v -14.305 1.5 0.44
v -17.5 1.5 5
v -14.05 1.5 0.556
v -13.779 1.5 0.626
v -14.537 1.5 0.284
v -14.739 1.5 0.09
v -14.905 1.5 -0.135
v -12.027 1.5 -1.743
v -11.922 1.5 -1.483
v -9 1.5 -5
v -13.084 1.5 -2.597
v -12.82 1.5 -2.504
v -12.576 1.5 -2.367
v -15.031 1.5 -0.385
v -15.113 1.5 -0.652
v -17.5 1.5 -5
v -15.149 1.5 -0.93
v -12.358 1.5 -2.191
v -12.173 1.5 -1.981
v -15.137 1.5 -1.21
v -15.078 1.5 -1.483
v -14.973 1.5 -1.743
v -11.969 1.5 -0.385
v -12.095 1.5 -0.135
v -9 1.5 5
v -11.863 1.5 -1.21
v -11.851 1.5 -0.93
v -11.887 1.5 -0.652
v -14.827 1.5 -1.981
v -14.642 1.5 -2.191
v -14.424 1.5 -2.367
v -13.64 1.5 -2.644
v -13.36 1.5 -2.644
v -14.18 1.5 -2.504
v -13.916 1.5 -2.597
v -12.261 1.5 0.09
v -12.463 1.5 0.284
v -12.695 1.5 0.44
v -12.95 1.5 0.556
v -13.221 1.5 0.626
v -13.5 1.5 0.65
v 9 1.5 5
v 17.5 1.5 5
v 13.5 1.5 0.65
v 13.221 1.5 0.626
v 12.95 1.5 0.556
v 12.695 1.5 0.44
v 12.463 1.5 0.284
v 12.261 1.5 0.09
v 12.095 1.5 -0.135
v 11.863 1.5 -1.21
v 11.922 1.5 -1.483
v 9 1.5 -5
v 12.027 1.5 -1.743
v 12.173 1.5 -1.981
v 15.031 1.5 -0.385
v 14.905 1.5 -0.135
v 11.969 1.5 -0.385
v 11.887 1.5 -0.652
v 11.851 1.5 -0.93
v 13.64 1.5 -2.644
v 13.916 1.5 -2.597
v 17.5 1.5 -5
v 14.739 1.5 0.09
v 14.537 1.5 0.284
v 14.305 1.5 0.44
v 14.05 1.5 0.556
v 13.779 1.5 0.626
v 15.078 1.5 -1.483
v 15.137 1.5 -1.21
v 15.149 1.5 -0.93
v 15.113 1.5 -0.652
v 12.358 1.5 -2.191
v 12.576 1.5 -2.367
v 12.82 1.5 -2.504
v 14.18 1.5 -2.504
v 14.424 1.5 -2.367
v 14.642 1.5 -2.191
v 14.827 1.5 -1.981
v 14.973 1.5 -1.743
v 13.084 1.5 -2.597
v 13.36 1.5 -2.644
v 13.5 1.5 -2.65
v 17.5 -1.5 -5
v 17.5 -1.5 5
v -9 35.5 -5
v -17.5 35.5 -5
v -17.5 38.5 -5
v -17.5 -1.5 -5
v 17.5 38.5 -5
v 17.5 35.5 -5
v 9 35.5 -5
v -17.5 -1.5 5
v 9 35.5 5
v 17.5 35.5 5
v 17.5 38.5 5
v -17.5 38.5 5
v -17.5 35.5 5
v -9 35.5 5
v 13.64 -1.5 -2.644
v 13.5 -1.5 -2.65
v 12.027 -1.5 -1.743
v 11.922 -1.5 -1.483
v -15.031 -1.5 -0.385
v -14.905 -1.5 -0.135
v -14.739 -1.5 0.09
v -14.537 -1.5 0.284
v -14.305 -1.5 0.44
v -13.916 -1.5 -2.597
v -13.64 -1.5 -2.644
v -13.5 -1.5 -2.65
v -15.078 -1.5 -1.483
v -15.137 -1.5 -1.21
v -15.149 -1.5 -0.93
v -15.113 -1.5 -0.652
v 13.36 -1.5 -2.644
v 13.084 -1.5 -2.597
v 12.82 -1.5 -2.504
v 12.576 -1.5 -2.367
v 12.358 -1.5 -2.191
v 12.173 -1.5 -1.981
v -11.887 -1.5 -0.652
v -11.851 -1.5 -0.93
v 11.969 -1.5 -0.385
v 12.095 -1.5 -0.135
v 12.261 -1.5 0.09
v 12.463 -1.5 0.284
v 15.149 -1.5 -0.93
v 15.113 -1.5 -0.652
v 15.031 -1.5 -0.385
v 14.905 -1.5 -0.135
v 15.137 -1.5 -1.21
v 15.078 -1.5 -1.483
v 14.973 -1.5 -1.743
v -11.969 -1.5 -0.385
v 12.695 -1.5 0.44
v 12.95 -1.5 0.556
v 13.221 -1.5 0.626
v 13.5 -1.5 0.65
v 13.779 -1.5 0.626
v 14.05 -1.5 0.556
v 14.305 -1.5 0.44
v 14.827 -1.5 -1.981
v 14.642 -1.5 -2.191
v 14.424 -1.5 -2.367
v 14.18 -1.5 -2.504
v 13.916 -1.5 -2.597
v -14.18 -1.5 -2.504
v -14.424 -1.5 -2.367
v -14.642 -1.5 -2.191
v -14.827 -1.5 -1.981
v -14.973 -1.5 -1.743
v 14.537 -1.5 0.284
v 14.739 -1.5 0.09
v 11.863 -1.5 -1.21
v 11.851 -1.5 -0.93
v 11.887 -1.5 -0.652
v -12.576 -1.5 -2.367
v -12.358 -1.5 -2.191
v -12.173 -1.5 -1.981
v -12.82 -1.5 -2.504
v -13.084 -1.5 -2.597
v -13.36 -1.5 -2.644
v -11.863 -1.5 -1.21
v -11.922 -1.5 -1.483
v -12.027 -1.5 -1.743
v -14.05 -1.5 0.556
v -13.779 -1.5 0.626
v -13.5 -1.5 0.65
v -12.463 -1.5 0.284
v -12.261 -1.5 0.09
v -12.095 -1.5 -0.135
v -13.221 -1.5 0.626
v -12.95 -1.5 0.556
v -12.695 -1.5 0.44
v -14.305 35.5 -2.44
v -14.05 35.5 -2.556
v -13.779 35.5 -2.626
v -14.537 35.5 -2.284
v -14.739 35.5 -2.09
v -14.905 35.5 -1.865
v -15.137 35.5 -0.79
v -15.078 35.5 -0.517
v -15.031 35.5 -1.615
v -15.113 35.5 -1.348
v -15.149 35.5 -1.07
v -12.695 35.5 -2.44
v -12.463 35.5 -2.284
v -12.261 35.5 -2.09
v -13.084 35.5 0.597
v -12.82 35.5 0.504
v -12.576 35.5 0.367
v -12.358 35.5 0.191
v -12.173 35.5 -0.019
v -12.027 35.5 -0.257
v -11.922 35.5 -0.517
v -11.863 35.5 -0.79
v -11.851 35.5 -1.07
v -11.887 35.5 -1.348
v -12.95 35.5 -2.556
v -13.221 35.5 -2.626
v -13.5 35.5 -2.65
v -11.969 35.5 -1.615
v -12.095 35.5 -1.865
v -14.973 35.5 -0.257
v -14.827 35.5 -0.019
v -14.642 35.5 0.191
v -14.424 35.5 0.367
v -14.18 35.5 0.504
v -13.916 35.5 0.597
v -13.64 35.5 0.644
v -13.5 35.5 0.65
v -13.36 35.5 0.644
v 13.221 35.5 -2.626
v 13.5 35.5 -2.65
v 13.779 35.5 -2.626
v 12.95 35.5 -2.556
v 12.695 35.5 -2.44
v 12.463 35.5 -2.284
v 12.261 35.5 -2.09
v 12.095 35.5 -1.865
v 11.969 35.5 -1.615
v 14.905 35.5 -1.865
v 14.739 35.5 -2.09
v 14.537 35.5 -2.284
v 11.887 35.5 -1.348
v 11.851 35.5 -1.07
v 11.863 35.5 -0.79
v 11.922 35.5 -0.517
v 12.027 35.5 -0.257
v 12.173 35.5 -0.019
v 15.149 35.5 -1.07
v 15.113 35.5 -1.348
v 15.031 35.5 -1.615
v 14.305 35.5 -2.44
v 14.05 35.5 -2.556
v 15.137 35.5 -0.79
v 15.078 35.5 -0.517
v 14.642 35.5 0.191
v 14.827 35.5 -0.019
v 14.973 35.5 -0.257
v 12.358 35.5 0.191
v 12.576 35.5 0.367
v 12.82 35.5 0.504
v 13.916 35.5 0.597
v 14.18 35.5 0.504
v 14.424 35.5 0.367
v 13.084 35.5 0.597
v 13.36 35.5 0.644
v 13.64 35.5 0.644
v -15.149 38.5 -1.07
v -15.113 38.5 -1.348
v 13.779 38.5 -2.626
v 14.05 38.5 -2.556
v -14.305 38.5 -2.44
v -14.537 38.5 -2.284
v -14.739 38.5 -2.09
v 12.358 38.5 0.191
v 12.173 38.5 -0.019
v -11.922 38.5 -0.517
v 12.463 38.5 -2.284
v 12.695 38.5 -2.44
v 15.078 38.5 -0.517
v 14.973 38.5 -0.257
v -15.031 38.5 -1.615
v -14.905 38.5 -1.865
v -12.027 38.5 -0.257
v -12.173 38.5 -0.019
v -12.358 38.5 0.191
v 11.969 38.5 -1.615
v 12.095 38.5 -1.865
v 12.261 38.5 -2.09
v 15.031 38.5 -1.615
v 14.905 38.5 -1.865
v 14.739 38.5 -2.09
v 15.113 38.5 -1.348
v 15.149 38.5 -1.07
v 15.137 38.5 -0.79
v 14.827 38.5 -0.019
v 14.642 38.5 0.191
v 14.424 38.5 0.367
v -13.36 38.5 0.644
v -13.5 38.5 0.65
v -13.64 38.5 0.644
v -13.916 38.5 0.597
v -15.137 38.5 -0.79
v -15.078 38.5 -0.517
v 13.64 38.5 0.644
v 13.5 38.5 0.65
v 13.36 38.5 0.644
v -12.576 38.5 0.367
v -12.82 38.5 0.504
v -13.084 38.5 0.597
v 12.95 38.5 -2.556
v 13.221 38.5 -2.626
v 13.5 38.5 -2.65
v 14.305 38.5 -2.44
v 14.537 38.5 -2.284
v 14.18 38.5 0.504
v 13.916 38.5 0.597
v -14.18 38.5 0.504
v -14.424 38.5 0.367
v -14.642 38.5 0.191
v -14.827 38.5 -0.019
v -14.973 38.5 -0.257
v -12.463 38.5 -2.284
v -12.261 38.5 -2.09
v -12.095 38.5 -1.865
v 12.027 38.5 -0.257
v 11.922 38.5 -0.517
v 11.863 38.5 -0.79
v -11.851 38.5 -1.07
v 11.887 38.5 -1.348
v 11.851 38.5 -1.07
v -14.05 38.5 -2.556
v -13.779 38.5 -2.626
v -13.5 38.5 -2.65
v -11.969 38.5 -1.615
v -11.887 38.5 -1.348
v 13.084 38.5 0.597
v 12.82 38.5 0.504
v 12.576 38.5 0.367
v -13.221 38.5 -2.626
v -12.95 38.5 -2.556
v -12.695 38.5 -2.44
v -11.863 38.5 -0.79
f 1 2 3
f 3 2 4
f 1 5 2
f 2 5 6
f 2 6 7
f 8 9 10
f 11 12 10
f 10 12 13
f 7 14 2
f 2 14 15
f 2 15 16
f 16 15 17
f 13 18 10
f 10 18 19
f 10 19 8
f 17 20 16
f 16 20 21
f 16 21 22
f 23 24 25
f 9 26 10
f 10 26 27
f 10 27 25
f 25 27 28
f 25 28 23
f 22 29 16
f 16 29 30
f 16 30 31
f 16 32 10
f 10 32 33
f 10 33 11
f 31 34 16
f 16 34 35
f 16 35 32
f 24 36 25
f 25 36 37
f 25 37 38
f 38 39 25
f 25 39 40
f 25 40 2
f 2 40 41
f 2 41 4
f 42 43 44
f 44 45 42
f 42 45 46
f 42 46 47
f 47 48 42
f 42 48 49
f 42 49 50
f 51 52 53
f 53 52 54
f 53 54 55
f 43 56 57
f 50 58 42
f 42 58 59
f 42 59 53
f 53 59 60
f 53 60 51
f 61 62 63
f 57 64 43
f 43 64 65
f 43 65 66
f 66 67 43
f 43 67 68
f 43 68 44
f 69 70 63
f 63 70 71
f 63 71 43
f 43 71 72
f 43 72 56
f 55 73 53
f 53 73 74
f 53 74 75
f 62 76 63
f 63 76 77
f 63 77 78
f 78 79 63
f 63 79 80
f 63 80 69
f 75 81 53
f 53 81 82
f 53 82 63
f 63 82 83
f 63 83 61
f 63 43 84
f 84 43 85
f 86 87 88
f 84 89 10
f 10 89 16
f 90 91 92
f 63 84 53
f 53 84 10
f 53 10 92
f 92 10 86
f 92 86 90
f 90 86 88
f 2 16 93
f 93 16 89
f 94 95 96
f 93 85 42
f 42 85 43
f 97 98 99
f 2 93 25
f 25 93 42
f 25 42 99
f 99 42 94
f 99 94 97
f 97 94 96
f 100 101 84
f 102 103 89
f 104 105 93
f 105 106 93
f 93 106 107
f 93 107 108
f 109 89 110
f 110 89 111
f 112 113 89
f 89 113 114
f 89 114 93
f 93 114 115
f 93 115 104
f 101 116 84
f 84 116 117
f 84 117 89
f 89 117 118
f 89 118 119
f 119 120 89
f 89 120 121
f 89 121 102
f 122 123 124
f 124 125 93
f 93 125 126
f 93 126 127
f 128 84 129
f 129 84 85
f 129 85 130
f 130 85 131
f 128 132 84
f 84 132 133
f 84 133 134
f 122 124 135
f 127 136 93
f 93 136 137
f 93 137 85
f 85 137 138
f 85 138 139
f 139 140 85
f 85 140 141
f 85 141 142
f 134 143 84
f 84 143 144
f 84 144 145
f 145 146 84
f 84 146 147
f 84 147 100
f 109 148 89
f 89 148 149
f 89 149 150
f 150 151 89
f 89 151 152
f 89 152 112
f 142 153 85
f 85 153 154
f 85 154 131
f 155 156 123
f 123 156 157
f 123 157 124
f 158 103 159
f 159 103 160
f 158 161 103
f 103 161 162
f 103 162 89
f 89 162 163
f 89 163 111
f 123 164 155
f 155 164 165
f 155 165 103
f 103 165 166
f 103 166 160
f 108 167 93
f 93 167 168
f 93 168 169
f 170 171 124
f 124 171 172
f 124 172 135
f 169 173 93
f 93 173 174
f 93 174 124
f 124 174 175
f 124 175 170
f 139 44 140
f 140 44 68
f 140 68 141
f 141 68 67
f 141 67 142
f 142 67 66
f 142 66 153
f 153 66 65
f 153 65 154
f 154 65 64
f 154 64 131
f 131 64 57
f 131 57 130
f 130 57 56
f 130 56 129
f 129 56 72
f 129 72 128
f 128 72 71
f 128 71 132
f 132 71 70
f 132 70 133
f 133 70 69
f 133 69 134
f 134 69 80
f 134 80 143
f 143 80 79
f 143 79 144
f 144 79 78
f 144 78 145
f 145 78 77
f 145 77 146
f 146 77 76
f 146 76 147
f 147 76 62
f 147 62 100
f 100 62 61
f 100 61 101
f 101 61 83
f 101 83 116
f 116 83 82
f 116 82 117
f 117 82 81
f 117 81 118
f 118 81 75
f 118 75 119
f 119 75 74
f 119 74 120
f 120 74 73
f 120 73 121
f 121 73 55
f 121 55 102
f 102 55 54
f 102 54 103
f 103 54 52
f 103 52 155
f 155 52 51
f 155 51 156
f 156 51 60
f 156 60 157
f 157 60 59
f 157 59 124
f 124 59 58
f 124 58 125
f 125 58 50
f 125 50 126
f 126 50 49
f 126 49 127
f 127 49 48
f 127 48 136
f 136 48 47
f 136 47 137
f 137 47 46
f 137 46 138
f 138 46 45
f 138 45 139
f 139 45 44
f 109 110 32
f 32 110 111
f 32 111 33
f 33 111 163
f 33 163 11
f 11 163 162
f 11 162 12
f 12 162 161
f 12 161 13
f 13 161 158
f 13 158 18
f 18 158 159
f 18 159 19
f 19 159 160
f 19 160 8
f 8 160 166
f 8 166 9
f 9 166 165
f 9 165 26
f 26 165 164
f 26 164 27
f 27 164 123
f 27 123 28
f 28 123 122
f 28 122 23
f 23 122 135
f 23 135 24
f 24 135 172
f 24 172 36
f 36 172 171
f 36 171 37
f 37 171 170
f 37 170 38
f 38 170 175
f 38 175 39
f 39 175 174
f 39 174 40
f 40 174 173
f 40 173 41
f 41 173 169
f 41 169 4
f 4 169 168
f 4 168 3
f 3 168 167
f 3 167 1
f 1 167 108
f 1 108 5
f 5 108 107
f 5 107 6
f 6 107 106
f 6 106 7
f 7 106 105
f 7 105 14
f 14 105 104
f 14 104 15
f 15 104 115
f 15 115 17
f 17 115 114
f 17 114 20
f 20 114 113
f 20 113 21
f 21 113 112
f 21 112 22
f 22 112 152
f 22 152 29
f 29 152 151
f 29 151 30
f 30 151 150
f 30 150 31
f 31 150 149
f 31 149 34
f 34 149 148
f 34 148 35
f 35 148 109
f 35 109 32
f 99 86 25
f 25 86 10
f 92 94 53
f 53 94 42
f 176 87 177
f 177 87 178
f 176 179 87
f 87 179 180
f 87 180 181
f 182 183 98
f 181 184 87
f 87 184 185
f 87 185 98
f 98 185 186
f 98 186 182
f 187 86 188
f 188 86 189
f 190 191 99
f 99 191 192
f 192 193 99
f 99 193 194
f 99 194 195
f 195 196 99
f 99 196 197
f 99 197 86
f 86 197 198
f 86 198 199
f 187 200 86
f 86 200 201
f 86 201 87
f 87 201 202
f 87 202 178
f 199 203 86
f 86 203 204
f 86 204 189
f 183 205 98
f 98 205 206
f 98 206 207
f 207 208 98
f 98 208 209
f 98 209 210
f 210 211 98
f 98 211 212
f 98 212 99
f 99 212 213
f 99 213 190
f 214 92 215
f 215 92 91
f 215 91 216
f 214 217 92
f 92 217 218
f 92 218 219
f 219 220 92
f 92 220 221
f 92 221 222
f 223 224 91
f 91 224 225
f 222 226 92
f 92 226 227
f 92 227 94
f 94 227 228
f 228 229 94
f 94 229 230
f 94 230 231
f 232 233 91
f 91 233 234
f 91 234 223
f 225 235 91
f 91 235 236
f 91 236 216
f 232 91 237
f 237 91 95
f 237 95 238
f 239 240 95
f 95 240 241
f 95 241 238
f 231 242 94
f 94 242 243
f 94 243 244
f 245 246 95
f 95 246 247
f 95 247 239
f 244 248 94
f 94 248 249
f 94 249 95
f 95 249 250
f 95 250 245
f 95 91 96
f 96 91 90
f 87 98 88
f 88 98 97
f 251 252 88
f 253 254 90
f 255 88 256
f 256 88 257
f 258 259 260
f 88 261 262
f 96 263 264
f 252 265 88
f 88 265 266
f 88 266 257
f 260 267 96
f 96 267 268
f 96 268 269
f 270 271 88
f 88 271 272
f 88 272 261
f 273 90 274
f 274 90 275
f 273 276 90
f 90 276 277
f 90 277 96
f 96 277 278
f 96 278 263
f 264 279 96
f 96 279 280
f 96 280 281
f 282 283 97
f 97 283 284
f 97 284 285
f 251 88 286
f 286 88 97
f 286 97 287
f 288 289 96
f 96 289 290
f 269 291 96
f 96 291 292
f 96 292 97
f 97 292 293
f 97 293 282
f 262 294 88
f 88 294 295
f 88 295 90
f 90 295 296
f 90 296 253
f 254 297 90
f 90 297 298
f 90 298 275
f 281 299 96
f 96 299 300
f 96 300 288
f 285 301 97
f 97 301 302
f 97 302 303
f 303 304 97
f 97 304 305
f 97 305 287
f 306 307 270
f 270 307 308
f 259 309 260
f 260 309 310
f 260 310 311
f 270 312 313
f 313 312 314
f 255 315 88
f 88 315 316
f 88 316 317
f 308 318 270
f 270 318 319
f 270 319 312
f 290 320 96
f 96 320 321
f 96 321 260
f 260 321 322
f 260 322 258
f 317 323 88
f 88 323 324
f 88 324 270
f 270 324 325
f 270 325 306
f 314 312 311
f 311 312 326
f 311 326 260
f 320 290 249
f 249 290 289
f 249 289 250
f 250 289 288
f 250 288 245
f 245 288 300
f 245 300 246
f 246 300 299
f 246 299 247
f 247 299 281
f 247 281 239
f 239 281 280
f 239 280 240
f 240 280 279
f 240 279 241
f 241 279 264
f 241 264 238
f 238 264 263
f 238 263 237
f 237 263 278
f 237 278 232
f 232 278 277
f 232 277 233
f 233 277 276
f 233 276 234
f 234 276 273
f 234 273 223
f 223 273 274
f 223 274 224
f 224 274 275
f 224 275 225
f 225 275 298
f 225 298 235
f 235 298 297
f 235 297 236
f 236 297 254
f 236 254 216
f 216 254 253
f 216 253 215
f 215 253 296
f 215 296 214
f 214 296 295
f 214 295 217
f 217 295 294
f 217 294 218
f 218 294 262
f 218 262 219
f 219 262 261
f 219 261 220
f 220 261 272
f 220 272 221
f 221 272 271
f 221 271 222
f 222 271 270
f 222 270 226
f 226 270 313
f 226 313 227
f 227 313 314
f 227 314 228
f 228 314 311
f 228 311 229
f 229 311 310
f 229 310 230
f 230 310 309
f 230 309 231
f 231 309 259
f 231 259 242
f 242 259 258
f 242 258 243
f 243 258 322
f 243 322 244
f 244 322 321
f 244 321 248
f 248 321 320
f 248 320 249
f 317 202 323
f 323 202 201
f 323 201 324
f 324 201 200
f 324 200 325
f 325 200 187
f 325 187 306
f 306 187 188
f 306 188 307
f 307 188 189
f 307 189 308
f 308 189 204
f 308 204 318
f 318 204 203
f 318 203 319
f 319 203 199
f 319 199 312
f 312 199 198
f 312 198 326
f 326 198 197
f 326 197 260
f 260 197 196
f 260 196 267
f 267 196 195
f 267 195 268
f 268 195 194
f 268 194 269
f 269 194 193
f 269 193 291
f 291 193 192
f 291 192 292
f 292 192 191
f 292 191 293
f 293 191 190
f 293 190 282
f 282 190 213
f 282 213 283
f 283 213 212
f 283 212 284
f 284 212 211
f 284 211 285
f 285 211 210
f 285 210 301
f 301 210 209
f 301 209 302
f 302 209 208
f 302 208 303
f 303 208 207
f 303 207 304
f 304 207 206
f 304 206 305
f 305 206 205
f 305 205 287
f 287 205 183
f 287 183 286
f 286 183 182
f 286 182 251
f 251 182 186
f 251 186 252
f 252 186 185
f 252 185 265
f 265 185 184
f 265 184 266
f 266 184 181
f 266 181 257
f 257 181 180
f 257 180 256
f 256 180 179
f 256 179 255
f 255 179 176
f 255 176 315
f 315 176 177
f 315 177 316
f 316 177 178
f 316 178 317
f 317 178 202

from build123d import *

# Parameters (mm, degrees)
SKETCH1_W           = 35
SKETCH1_H           = 10
BOSS_EXTRUDE1_DEPTH = 1.5
SKETCH2_R           = 1.65
CUT_EXTRUDE1_DEPTH  = 3
SKETCH3_W           = 18
SKETCH3_H           = 10
BOSS_EXTRUDE2_DEPTH = 34


with BuildPart() as part:
    # Sketch1 → Boss-Extrude1 (new body, symmetric)
    with BuildSketch(Plane(origin=(0, 0, 0), x_dir=(1, 0, 0), z_dir=(0, 1, 0))):
        Rectangle(SKETCH1_W, SKETCH1_H)
    boss_extrude1 = extrude(amount=BOSS_EXTRUDE1_DEPTH, both=True)

    # Sketch2 → Cut-Extrude1 (cut)
    with BuildSketch(Plane(origin=(0, 1.5, 0), x_dir=(1, 0, 0), z_dir=(0, 1, 0))):
        with Locations((-13.5, 1)):
            Circle(SKETCH2_R)
        with Locations((13.5, 1)):
            Circle(SKETCH2_R)
    cut_extrude1 = extrude(amount=-CUT_EXTRUDE1_DEPTH, mode=Mode.SUBTRACT)

    # Sketch3 → Boss-Extrude2 (add)
    with BuildSketch(Plane(origin=(0, 1.5, 0), x_dir=(1, 0, 0), z_dir=(0, 1, 0))):
        Rectangle(SKETCH3_W, SKETCH3_H)
    extrude(amount=BOSS_EXTRUDE2_DEPTH)

    # Mirror1: Boss-Extrude1, Cut-Extrude1 across plane
    add(boss_extrude1.mirror(Plane.ZX.offset(18.5)))
    add(cut_extrude1.mirror(Plane.ZX.offset(18.5)), mode=Mode.SUBTRACT)


solid = part.part
